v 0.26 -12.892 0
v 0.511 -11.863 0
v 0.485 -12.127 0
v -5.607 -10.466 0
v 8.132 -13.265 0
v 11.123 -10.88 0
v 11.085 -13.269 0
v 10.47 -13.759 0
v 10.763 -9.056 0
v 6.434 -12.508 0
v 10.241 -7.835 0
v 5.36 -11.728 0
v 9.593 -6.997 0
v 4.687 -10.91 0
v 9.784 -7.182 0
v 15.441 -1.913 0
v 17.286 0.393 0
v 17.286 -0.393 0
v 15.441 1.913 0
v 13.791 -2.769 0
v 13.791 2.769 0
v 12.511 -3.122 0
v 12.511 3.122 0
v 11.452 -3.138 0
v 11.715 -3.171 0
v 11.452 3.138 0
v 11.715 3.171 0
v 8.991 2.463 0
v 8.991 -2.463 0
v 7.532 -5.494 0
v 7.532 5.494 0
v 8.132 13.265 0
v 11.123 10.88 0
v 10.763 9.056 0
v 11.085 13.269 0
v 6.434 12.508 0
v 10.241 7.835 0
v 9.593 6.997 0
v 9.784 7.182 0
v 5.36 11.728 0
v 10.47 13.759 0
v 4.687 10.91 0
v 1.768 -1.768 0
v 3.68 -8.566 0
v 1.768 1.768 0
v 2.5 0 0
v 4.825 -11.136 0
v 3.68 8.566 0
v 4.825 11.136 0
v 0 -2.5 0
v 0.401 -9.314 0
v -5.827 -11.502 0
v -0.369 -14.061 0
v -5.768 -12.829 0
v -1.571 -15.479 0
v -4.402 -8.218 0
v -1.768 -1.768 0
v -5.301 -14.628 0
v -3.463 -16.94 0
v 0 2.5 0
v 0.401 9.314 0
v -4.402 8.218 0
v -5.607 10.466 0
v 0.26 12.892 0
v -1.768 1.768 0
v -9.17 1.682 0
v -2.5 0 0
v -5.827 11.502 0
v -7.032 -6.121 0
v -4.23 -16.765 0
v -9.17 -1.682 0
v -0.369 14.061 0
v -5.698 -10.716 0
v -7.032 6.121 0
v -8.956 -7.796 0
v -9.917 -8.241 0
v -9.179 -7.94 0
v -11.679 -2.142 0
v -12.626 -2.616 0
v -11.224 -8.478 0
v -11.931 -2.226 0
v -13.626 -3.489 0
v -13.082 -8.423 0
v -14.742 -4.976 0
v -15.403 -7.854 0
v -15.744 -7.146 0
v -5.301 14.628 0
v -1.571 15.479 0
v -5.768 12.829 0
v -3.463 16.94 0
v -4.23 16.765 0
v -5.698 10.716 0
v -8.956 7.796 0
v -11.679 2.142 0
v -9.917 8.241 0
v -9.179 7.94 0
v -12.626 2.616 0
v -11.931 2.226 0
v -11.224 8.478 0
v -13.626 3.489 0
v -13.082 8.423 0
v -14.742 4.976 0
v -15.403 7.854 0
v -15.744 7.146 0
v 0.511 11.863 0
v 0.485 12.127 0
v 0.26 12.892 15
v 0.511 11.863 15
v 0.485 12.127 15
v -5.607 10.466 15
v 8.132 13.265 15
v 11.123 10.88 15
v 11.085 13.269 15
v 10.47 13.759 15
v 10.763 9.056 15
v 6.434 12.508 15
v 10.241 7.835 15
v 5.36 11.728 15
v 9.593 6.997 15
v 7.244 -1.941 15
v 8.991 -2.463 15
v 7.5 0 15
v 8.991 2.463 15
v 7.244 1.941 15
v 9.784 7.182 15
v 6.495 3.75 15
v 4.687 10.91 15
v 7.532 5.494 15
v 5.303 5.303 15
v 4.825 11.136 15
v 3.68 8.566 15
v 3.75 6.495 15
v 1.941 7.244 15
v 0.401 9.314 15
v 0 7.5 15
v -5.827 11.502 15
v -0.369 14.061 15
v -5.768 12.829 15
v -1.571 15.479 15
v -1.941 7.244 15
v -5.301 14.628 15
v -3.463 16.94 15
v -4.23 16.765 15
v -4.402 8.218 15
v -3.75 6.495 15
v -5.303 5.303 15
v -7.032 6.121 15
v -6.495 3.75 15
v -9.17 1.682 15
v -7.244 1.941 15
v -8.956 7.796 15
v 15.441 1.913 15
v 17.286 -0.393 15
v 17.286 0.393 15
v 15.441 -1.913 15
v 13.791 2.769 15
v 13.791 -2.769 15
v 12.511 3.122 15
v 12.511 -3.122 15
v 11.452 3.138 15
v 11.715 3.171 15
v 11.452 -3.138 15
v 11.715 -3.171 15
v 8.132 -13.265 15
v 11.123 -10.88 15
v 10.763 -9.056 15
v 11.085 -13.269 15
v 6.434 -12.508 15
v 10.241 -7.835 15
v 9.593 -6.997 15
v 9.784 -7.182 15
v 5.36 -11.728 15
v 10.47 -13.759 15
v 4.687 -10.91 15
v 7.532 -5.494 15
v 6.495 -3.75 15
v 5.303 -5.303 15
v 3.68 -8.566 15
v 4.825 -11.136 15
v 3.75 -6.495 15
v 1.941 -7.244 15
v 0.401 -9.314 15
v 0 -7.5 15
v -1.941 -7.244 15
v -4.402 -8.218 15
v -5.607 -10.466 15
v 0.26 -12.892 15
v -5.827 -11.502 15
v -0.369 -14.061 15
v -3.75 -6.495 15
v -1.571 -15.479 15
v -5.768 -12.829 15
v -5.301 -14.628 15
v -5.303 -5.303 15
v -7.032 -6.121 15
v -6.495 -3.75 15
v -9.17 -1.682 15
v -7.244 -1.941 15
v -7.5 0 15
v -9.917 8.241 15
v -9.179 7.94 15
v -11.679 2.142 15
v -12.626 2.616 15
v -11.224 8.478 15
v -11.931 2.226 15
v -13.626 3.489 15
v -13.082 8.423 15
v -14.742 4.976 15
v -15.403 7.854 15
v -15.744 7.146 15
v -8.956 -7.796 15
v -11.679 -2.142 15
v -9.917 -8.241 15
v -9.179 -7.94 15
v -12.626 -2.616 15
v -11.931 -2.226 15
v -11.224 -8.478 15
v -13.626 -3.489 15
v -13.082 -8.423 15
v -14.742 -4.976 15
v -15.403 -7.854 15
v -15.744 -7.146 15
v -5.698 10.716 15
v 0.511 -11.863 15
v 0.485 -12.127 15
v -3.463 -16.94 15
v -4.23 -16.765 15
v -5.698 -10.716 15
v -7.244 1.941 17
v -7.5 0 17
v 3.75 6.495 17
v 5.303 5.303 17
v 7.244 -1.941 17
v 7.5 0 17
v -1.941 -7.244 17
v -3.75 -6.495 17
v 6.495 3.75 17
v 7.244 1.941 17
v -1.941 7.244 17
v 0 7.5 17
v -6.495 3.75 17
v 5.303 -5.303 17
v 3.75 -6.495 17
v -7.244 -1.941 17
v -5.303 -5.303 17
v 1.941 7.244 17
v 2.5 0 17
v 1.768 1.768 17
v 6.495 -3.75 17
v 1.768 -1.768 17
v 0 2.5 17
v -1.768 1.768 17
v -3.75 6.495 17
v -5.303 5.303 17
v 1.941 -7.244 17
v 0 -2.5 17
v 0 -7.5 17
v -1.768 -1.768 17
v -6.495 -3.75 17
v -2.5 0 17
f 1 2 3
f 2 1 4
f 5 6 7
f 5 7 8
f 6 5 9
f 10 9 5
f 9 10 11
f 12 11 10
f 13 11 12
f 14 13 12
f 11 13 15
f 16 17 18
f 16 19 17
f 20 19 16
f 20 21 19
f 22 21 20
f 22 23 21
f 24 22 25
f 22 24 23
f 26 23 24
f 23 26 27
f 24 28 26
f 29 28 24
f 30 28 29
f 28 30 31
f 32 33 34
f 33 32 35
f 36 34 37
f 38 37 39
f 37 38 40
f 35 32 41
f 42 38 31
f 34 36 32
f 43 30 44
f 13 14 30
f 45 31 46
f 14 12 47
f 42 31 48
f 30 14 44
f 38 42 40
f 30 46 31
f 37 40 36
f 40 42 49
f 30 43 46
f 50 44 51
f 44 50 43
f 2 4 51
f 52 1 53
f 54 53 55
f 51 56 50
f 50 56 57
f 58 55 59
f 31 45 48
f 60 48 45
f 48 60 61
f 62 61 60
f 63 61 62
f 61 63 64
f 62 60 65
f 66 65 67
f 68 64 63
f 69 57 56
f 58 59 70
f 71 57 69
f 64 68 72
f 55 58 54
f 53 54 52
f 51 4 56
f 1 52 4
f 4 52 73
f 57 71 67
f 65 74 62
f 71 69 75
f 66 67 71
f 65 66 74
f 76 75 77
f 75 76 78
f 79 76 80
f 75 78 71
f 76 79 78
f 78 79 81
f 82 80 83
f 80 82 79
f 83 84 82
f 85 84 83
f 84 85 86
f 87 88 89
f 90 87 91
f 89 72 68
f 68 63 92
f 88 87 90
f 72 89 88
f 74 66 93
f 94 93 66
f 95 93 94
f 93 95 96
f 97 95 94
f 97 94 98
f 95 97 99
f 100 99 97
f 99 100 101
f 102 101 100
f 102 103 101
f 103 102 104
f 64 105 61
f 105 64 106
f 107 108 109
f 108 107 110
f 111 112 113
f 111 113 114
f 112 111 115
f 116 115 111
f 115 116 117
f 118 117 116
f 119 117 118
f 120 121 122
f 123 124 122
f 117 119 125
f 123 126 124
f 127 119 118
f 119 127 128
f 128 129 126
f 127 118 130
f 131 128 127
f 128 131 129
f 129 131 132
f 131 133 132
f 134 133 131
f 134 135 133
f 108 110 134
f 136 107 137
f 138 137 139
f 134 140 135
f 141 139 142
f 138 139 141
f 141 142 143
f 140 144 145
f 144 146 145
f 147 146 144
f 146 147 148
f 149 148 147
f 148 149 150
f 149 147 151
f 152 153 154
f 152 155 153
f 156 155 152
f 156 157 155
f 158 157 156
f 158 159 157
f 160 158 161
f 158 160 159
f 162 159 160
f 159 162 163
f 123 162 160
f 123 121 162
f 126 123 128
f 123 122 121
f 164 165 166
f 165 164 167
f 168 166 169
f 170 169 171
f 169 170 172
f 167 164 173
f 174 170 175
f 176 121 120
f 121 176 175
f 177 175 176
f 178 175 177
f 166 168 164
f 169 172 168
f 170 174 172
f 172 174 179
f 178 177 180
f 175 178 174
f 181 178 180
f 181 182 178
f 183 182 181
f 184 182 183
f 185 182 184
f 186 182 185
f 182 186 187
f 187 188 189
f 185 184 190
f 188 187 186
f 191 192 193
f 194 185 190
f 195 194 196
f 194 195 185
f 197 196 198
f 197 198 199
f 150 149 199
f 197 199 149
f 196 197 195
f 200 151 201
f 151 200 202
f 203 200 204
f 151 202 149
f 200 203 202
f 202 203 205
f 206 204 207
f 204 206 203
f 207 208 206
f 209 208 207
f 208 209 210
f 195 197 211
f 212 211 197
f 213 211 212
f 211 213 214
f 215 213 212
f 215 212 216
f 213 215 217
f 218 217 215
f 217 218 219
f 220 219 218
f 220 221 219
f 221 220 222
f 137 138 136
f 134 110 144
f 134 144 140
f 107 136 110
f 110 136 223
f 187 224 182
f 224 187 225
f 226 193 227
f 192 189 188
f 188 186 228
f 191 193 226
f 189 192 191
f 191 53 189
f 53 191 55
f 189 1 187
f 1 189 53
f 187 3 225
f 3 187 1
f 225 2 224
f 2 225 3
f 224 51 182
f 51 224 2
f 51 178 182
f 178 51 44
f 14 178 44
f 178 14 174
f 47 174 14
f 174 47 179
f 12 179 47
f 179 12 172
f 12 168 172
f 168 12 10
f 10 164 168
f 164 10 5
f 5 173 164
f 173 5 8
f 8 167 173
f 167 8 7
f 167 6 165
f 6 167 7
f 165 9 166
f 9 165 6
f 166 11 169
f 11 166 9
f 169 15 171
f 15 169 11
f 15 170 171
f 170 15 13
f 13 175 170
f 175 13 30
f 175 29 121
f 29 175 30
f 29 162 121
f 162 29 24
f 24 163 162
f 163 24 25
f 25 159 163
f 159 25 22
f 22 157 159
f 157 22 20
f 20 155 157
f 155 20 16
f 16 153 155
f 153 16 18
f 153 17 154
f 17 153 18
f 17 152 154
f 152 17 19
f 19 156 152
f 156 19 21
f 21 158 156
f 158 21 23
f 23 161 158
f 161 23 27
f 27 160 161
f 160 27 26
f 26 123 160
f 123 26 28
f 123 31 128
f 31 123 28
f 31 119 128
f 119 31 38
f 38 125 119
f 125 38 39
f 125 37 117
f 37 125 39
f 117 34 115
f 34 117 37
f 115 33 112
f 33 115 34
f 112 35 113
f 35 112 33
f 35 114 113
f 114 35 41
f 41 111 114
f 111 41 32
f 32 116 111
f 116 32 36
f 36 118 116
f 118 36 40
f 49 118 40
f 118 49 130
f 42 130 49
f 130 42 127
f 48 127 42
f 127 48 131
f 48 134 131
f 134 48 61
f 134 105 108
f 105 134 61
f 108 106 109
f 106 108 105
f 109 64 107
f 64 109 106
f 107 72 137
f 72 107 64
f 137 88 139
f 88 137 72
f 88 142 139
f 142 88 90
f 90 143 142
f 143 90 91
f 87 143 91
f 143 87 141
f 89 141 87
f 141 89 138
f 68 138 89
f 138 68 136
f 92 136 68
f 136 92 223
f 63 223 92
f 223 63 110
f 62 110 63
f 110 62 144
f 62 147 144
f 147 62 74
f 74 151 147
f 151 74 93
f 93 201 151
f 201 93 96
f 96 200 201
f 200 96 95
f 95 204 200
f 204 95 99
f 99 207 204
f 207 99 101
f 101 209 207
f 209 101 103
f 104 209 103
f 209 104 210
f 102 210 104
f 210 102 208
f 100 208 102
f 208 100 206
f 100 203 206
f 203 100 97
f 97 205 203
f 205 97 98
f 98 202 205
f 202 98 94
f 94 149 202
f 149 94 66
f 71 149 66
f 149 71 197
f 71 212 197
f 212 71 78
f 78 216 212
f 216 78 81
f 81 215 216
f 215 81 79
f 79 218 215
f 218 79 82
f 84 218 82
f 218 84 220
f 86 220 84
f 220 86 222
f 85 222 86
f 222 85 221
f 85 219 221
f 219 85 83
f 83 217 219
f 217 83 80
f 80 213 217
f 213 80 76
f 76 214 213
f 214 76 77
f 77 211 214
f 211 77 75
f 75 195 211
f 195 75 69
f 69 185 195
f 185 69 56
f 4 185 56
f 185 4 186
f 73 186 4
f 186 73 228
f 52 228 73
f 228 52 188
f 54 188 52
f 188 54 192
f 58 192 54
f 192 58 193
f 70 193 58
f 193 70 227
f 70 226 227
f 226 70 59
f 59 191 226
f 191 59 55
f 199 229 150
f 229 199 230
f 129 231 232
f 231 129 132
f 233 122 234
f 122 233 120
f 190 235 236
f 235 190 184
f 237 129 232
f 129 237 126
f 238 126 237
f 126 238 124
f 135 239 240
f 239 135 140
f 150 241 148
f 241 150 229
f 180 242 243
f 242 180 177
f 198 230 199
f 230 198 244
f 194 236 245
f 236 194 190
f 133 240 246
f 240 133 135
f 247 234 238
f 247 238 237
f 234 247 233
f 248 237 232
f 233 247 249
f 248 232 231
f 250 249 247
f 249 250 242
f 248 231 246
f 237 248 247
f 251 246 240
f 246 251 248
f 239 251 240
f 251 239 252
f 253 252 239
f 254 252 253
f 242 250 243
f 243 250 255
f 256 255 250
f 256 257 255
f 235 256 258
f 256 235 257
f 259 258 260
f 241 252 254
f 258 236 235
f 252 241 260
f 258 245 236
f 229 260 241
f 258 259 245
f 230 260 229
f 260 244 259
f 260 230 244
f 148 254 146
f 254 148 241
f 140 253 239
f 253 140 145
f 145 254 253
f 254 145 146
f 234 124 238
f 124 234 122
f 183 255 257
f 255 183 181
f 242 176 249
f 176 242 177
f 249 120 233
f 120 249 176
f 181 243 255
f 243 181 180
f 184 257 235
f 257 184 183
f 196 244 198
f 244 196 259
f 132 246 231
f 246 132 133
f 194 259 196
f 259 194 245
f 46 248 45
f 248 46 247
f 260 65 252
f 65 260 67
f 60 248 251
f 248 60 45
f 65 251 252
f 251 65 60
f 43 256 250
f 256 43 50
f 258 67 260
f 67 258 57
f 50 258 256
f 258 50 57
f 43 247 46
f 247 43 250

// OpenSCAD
// Copyright 2011 Cliff L. Biffle.
// This file is licensed Creative Commons Attribution-ShareAlike 3.0.
// http://creativecommons.org/licenses/by-sa/3.0/

// You can get this file from http://www.thingiverse.com/thing:3575
use <parametric_involute_gear_v5.0.scad>

// Couple handy arithmetic shortcuts
function sqr(n) = pow(n, 2);
function cube(n) = pow(n, 3);

// This was derived as follows:
// In Greg Frost's original script, the outer radius of a spur
// gear can be computed as...
function gear_outer_radius(number_of_teeth, circular_pitch) =
	(sqr(number_of_teeth) * sqr(circular_pitch) + 64800)
		/ (360 * number_of_teeth * circular_pitch);

// We can fit gears to the spacing by working it backwards.
//  spacing = gear_outer_radius(teeth1, cp)
//          + gear_outer_radius(teeth2, cp);
//
// I plugged this into an algebra system, assuming that spacing,
// teeth1, and teeth2 are given.  By solving for circular pitch,
// we get this terrifying equation:
function fit_spur_gears(n1, n2, spacing) =
	(180 * spacing * n1 * n2  +  180
		* sqrt(-(2*n1*cube(n2)-(sqr(spacing)-4)*sqr(n1)*sqr(n2)+2*cube(n1)*n2)))
	/ (n1*sqr(n2) + sqr(n1)*n2);

// Here's an example.
module example_gears(t) {
	n1 = 19; n2 = 7;
	p = fit_spur_gears(n1, n2, 50);
	// Simple Test:
    
    if (t == 1)
	gear (circular_pitch=p,
		gear_thickness = 12,
		rim_thickness = 15,
		hub_thickness = 17,
	    number_of_teeth = n1,
		circles=8);

    if (t == 2)	
	//translate([gear_outer_radius(n1, p) + gear_outer_radius(n2, p),0,0])
	gear (circular_pitch=p,
		gear_thickness = 12,
		rim_thickness = 15,
		hub_thickness = 17,
		circles=8,
		number_of_teeth = n2,
		rim_width = 2);
}
example_gears(2);
